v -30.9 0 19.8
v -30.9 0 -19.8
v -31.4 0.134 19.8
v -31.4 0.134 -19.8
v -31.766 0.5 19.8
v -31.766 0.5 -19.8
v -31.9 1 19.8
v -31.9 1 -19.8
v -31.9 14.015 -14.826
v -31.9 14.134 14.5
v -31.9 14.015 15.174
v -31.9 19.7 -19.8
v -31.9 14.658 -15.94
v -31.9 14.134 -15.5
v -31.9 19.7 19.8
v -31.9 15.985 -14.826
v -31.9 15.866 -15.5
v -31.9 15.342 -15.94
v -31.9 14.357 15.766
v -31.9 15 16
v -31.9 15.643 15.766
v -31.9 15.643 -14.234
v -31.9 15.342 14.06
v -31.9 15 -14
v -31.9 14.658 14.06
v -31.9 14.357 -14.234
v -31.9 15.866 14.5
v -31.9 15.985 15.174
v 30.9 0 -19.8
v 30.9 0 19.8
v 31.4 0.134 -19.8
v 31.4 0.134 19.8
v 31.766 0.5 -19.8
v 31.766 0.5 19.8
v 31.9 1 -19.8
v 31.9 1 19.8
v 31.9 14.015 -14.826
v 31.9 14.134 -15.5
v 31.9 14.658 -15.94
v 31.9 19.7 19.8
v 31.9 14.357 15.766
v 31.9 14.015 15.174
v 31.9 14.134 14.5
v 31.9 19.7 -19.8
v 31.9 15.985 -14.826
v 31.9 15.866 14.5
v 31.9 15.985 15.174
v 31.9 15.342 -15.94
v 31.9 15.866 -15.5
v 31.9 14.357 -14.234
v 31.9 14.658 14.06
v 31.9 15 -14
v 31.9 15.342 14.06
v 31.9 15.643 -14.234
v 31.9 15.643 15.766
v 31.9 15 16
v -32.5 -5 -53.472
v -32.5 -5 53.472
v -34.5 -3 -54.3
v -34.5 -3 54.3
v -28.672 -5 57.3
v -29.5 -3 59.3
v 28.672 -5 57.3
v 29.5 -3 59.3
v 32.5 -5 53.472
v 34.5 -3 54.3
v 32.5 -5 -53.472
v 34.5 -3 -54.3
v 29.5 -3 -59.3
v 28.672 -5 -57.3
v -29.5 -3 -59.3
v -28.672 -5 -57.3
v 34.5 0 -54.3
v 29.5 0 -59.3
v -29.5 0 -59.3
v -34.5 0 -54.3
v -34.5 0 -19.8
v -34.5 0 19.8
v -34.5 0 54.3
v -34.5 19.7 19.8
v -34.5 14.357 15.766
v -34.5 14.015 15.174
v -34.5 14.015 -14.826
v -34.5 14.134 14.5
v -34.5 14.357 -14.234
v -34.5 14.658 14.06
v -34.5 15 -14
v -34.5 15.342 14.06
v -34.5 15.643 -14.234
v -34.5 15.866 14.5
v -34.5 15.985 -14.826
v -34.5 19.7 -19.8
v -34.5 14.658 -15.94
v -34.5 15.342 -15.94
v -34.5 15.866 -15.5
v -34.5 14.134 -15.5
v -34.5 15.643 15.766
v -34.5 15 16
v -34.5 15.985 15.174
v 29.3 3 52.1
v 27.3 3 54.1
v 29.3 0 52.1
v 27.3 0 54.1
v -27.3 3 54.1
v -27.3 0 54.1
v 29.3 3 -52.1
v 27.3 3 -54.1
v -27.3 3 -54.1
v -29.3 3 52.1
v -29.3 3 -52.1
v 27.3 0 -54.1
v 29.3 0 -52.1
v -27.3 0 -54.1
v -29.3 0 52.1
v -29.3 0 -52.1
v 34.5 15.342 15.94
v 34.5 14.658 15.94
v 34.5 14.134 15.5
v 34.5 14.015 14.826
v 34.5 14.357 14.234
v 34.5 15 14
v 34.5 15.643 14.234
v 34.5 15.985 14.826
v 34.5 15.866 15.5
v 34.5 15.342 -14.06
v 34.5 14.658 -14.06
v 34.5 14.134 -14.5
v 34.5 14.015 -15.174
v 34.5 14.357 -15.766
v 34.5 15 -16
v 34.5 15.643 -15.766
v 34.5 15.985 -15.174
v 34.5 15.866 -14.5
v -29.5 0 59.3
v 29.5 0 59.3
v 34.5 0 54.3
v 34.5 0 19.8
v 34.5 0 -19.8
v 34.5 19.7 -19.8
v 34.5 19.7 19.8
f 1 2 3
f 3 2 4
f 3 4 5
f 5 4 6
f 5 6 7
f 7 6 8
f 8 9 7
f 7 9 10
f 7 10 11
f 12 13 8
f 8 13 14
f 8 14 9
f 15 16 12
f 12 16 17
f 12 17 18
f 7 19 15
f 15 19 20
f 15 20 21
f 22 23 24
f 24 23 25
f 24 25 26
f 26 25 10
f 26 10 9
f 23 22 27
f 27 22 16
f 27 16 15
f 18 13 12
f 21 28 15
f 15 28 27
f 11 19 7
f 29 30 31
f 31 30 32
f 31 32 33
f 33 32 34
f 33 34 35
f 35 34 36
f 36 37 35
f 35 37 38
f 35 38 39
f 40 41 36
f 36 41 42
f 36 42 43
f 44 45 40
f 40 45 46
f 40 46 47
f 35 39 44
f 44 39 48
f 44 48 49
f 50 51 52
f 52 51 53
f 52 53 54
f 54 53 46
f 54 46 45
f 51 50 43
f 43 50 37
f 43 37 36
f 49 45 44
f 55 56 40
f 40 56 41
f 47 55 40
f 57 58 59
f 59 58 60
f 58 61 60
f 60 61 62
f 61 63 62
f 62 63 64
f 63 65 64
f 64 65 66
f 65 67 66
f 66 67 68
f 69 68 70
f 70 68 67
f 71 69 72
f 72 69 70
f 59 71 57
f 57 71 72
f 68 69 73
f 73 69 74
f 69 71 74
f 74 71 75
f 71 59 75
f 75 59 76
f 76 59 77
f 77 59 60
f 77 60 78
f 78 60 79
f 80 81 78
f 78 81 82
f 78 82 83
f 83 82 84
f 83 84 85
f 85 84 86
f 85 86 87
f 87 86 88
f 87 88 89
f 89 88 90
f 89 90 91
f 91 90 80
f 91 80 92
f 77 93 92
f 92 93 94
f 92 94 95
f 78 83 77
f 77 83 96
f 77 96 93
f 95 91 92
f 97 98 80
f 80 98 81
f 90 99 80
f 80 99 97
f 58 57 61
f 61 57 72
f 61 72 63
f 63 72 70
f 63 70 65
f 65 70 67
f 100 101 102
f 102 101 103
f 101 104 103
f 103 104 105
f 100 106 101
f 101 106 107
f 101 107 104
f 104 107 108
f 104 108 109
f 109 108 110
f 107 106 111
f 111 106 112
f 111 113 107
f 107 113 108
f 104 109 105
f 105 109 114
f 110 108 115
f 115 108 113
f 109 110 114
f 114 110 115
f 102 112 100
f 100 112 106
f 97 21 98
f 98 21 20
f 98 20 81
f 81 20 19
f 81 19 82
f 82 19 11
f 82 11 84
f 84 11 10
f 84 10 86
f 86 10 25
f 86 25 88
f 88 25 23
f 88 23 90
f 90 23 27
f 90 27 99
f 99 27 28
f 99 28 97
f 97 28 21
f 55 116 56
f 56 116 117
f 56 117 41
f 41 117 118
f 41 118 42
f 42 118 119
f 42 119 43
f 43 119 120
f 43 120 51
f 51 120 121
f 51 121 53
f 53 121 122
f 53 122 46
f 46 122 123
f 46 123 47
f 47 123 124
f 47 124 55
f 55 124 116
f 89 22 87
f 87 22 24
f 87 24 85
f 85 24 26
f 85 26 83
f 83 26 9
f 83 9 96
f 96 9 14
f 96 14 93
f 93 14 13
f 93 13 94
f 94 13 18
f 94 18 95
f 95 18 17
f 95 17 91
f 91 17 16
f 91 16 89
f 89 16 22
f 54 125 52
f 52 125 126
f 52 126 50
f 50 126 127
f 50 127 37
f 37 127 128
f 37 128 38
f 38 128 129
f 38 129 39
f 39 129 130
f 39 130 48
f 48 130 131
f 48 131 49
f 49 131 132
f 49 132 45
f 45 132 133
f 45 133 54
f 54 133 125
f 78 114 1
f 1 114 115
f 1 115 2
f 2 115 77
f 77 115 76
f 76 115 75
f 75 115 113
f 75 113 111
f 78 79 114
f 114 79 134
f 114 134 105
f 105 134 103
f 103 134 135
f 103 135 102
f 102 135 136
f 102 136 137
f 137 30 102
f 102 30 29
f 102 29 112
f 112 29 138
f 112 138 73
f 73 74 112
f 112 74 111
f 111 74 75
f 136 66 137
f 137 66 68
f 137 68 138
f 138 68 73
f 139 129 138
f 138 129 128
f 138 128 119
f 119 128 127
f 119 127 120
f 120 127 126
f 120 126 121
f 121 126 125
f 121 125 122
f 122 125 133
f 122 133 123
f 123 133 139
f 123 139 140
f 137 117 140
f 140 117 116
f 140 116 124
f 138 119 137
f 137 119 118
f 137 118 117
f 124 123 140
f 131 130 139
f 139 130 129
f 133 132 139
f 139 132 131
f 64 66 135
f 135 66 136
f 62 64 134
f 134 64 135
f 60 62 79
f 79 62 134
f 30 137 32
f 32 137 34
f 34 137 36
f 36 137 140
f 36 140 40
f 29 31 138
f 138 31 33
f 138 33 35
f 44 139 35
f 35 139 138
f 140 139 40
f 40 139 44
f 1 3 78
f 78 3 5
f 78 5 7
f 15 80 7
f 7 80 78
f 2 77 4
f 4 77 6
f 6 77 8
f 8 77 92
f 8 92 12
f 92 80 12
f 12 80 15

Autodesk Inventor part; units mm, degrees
ref_plane "YZ Plane" through (0, 0, 0) normal (1, 0, 0) x (0, 1, 0)
ref_plane "XZ Plane" through (0, 0, 0) normal (0, 1, 0) x (-1, 0, 0)
ref_plane "XY Plane" through (0, 0, 0) normal (0, 0, 1) x (1, 0, 0)
sketch "스케치1" plane through (0, 0, 0) normal (0, 1, 0) x (-1, 0, 0)
  line L0 (-29.3, -54.1) -> (29.3, -54.1)
  line L1 (29.3, -54.1) -> (29.3, 54.1)
  line L2 (29.3, 54.1) -> (-29.3, 54.1)
  line L3 (-29.3, 54.1) -> (-29.3, -54.1)
  line L4 (-29.3, -54.1) -> (29.3, 54.1) construction
  line L5 (29.3, -54.1) -> (-29.3, 54.1) construction
  line L6 (34.5, 59.3) -> (34.5, -59.3)
  line L7 (34.5, -59.3) -> (-34.5, -59.3)
  line L8 (-34.5, -59.3) -> (-34.5, 59.3)
  line L9 (-34.5, 59.3) -> (34.5, 59.3)
  line L10 (34.5, 19.8) -> (29.3, 19.8)
  line L11 (29.3, 19.8) -> (29.3, -19.8)
  line L12 (29.3, -19.8) -> (34.5, -19.8)
  line L13 (34.5, -19.8) -> (34.5, 19.8)
  line L14 (34.5, 19.8) -> (29.3, -19.8) construction
  line L15 (29.3, 19.8) -> (34.5, -19.8) construction
  line L16 (0, 0) -> (0, -10.2235)
  line L17 (31.9, 19.8) -> (31.9, -19.8)
  line L18 (-34.5, 19.8) -> (-29.3, 19.8)
  line L19 (-29.3, 19.8) -> (-29.3, -19.8)
  line L20 (-29.3, -19.8) -> (-34.5, -19.8)
  line L21 (-34.5, -19.8) -> (-34.5, 19.8)
  line L22 (-34.5, 19.8) -> (-29.3, -19.8) construction
  line L23 (-29.3, 19.8) -> (-34.5, -19.8) construction
  line L24 (-31.9, 19.8) -> (-31.9, -19.8)
  point P0 (31.9, 0)
  point P1 (-31.9, 0)
  point P2 (-34.5, 19.8)
  point P3 (-34.5, -19.8)
  dimension "d0" = 58.6
  dimension "d1" = 108.2
  dimension "d4" = 5.2
  dimension "d7" = 39.6
extrude "돌출1" add sketch "스케치1" against normal blind 5
extrude "돌출2" add sketch "스케치1" along normal blind 19.7 contours L20 L8 L18 L24 | L17 L10 L6 L12
chamfer "모따기1" distance 5 angle 45 4 edges at (-34.5, -2.5, 59.3) (34.5, -2.5, 59.3) (34.5, -2.5, -59.3) (-34.5, -2.5, -59.3)
sketch "스케치2" plane through (34.5, 0, -19.8) normal (1, 0, 0) x (0, 0, -1)
  circle A0 centre (-4.8, 15) radius 1
  line L0 (-19.8, 0) -> (-19.8, 7.8444)
  line L1 (-39.6, 19.7) -> (0, 19.7) projected
  line L2 (-39.6, 0) -> (0, 0) projected
  circle A1 centre (-34.8, 15) radius 1
  dimension "d14" = 15
  dimension "d15" = 2
  dimension "d16" = 15
extrude "돌출3" cut sketch "스케치2" against normal up to surface (69 mm away)
extrude "돌출4" add sketch "스케치1" along normal blind 3 contours L3 L2 L1 L0
chamfer "모따기2" distance 2 angle 45 4 edges at (-29.3, 1.5, -54.1) (-29.3, 1.5, 54.1) (29.3, 1.5, -54.1) (29.3, 1.5, 54.1)
chamfer "모따기3" distance 2 angle 45 8 edges at (34.5, -5, 0) (32, -5, -56.8) (0, -5, -59.3) (-34.5, -5, 0) (-32, -5, -56.8) (32, -5, 56.8) (0, -5, 59.3) (-32, -5, 56.8)
fillet "모깎기2" radius 1 2 edges at (31.9, 0, 0) (-31.9, 0, 0)
properties part number "컨버터 커버"
